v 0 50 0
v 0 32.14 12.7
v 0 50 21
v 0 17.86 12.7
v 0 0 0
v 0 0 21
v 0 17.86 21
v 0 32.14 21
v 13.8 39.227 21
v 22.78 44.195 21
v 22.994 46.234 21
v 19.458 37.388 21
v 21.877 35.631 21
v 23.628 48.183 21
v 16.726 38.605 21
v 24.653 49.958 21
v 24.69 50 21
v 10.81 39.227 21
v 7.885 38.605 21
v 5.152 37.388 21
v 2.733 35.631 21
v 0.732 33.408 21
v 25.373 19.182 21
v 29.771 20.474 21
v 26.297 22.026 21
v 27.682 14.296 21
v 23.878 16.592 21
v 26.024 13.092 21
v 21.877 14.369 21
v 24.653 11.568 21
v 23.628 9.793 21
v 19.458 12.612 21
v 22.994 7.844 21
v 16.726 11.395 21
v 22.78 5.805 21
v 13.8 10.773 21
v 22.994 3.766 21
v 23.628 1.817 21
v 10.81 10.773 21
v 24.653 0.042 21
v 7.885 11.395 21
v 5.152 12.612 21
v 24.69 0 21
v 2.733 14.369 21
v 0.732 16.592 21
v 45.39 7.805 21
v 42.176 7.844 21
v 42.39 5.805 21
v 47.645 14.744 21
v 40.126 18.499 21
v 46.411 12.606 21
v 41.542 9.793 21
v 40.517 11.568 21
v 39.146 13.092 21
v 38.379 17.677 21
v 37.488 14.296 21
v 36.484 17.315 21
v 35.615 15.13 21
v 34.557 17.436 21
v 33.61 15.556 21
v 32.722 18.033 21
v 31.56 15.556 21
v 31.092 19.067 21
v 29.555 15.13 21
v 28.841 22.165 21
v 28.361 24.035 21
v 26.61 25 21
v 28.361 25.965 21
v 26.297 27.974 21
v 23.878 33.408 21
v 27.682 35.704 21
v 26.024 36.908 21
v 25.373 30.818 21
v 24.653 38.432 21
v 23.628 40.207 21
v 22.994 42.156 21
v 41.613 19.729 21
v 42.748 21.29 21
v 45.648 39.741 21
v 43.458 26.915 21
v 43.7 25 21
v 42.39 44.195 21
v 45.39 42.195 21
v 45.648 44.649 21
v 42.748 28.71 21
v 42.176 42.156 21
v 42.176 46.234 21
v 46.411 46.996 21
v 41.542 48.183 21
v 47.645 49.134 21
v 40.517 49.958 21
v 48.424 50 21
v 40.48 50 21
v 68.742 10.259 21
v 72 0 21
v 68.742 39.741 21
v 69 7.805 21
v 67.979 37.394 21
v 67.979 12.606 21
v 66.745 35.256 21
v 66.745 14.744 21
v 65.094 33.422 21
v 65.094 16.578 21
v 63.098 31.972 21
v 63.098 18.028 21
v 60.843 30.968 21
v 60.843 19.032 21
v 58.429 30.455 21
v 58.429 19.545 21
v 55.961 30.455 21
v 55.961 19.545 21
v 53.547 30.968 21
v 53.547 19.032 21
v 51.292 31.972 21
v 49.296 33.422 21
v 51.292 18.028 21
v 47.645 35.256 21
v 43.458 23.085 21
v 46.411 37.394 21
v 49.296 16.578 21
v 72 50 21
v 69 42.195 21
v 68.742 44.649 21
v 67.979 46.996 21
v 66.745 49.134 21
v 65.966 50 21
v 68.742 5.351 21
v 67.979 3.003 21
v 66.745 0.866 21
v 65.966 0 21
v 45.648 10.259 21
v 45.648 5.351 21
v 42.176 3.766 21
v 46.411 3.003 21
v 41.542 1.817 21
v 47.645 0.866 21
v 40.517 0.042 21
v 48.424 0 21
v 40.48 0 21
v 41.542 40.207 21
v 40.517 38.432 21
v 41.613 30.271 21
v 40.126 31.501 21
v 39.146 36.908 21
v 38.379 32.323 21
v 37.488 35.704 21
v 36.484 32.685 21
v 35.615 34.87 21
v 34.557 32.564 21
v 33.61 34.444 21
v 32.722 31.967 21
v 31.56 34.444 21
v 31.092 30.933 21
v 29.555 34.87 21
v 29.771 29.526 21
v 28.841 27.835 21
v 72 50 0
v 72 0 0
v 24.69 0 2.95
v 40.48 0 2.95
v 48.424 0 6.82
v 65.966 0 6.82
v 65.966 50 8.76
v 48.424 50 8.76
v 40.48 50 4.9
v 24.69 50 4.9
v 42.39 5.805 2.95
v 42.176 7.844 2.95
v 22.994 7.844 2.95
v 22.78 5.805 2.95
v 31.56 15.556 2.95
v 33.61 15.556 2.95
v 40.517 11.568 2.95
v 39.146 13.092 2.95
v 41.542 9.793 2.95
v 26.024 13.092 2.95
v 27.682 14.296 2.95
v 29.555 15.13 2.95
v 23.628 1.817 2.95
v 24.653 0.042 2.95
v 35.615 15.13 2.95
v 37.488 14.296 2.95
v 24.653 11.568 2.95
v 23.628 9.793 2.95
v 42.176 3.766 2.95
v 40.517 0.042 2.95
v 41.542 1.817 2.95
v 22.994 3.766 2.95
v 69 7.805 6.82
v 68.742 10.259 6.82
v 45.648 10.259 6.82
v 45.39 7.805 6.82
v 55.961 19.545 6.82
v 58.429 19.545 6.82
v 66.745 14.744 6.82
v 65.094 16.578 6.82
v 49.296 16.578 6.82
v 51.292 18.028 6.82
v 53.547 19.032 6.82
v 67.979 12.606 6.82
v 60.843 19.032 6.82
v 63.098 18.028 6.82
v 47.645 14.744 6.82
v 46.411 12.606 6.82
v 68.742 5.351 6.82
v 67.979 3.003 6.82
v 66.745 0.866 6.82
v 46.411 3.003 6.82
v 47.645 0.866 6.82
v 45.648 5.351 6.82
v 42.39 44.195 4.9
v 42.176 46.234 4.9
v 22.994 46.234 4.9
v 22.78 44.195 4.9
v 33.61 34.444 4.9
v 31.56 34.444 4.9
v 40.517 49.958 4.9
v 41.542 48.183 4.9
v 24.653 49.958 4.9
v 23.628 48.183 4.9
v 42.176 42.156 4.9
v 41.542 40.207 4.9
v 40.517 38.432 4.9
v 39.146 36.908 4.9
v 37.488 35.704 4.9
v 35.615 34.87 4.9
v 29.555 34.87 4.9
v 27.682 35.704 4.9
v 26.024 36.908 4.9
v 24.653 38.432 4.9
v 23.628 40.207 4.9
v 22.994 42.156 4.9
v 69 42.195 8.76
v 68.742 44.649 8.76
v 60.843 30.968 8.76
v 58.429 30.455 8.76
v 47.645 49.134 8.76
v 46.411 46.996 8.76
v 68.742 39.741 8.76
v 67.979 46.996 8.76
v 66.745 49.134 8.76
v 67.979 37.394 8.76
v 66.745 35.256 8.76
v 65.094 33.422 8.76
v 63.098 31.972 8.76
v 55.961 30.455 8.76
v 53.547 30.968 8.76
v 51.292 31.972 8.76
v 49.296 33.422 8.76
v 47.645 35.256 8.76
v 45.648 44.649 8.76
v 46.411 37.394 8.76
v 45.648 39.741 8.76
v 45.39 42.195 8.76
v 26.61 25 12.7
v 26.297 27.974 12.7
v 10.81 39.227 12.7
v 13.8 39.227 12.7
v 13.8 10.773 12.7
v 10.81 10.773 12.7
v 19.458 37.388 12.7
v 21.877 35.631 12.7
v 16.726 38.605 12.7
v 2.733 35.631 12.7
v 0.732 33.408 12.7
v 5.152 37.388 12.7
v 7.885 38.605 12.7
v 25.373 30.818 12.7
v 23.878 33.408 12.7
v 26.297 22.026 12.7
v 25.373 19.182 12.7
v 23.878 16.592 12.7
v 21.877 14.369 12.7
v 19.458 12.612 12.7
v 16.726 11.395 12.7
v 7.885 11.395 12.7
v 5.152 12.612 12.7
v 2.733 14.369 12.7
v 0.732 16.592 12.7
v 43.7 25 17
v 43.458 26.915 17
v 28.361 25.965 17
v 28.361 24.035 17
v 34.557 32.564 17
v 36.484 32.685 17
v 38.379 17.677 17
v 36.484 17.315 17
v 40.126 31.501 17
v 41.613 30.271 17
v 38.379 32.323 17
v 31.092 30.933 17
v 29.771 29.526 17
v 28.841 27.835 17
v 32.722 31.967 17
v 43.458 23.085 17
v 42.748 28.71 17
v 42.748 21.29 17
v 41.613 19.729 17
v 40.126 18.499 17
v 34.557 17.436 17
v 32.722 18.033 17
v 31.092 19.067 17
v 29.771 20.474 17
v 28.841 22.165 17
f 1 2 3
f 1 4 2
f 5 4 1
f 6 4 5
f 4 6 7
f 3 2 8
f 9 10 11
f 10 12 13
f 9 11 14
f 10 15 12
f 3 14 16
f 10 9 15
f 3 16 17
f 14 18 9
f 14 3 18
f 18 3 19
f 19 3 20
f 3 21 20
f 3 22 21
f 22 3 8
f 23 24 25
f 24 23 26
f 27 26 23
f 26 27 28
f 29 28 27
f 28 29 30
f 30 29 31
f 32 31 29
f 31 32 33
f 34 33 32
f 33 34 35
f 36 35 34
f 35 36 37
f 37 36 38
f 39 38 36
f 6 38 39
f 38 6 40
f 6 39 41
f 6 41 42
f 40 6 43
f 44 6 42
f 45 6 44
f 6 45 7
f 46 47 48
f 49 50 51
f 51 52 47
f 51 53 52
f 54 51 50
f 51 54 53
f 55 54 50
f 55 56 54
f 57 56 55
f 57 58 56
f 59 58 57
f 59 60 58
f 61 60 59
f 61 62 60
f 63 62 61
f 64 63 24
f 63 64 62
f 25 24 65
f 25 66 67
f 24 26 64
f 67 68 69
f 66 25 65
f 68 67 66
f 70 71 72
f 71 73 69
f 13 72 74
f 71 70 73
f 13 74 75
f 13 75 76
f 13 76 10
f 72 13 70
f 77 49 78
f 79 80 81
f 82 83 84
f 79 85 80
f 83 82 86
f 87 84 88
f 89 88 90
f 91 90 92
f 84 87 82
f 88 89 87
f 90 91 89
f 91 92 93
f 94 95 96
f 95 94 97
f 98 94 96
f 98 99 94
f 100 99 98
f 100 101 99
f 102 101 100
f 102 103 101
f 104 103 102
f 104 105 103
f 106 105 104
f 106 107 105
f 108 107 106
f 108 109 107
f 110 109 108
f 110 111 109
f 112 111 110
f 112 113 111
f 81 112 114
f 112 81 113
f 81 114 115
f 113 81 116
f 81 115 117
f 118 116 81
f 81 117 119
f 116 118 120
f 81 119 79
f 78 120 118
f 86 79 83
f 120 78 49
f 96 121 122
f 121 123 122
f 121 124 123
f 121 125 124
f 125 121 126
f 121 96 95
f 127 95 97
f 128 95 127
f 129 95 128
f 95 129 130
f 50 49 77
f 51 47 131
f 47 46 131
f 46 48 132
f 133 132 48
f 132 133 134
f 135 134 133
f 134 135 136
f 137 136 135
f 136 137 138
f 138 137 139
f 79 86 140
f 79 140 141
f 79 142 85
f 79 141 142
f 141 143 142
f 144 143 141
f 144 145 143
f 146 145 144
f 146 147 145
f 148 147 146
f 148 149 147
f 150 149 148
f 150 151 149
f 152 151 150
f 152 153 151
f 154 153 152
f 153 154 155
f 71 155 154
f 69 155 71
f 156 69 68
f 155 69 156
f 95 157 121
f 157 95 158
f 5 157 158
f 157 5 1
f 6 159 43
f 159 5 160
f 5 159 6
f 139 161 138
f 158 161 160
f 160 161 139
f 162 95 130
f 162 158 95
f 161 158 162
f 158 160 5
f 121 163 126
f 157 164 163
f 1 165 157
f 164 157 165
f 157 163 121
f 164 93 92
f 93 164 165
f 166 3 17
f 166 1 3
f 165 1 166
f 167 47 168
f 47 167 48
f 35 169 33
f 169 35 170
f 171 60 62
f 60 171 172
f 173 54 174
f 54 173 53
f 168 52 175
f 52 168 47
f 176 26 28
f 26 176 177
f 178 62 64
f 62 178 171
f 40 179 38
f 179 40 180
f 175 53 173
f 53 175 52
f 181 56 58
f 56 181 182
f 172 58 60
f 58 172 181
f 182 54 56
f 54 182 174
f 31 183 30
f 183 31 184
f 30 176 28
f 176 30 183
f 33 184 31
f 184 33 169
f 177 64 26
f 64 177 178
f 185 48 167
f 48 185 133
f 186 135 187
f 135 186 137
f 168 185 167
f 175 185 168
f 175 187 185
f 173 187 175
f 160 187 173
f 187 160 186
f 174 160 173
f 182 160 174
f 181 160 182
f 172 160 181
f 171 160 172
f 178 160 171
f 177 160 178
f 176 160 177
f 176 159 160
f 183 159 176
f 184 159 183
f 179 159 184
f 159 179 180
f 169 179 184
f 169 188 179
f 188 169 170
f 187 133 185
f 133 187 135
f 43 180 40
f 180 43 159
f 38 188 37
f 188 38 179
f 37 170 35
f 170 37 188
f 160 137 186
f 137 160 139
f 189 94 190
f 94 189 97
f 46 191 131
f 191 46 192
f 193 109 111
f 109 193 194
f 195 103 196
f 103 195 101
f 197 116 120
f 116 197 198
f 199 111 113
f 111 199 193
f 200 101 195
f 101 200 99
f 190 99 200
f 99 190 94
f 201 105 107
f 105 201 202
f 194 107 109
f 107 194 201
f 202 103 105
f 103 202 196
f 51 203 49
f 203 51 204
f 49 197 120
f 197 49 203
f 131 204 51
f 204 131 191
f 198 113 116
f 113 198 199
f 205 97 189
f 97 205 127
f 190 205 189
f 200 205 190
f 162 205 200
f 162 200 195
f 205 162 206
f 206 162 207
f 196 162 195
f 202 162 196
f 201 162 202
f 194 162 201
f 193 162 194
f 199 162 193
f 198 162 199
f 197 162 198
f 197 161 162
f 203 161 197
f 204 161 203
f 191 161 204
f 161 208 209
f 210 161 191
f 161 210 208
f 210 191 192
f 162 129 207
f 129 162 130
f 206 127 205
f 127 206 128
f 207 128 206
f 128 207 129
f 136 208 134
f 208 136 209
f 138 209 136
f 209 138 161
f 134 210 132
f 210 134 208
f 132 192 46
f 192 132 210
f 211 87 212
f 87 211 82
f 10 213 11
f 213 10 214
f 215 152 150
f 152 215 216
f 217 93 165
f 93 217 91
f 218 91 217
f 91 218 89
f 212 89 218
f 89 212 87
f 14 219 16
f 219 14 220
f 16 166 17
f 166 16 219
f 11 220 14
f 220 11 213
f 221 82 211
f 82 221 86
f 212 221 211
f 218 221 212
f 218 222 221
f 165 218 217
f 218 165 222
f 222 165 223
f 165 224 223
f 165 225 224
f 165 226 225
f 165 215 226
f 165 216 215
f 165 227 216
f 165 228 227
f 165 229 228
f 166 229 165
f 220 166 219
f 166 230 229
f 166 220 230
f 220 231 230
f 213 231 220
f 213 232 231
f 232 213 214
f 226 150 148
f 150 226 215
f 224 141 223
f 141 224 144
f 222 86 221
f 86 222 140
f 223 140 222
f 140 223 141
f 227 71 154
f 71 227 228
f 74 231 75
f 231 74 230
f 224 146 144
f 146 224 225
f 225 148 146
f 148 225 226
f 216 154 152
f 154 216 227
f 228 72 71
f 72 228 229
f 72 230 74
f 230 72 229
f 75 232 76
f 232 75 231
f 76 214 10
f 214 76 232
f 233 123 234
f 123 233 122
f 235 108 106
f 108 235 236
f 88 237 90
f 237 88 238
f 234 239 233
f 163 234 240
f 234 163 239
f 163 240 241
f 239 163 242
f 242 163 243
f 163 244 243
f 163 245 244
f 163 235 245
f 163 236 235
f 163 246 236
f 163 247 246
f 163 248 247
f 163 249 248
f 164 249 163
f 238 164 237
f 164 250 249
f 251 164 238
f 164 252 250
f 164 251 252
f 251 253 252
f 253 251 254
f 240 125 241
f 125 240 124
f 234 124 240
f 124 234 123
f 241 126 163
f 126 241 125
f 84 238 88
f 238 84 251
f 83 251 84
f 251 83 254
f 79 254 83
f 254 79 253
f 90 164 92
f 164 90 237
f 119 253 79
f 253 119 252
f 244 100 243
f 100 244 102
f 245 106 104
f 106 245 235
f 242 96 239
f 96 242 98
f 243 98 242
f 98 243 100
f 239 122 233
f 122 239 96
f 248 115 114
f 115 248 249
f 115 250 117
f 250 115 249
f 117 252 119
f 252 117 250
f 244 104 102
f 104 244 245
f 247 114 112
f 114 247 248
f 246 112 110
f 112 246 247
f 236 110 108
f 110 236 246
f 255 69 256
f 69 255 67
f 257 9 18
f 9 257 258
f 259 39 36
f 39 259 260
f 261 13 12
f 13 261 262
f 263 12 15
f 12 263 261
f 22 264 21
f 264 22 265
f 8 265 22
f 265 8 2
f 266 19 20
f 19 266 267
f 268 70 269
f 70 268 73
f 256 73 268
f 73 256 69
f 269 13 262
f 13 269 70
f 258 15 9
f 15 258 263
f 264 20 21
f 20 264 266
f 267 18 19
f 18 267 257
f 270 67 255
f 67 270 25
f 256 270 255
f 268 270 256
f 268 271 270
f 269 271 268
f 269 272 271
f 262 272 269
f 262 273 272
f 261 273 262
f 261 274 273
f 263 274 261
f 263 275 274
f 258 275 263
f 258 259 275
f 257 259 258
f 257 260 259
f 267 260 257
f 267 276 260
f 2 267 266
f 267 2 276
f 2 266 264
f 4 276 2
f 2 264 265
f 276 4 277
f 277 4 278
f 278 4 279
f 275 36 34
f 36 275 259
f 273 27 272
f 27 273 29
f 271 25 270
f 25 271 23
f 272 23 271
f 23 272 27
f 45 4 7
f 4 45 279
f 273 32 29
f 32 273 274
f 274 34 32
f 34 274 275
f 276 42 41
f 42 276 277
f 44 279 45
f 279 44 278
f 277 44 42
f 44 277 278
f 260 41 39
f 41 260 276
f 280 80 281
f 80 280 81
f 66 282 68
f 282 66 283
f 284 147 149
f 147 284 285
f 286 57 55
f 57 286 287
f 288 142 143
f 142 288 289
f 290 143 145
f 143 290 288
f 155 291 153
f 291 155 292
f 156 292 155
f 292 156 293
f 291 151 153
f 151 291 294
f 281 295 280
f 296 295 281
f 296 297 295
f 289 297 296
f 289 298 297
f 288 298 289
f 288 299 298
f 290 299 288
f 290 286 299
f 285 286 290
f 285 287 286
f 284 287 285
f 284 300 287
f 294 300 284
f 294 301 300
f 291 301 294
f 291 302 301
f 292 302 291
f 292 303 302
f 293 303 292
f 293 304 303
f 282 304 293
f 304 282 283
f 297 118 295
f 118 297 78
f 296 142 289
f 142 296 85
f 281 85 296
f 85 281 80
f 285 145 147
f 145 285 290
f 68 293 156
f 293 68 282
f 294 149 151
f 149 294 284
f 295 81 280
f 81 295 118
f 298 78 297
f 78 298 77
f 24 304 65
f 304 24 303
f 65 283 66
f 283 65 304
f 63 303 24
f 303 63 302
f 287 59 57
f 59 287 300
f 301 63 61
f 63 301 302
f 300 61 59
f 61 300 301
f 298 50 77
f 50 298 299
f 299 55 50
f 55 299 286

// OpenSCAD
length = 72;
width = 50;
height = 21;

//Based on magnet size:
magnetBaseInnerDiameter = 15.4;
magnetHeight = 4.0;

//
//		1s
//			19.11 diameter
//			17 coins
//			height 33.15, or 17.55 and 15.6
//
//		2s
//			13 coins
//			23.11 diameter
//			height 25.45, or 13.68 and 11.74
//		4s
//			4 coins
//			28.11 diameter
//			7.8 height

smallCircleDiameter = 19.11 + .5;
smallCircleOffset = 4;
smallCircleHeight1 = 17.55 + .5;
smallCircleHeight2 = 15.6 + .5;

mediumCircleDiameter = 23.11 + .5;
mediumCircleOffset = 4;
mediumCircleHeight1 = 13.68 + .5;
mediumCircleHeight2 = 11.74 + .5;

largeCircleDiameter = 28.11 + .5;
largeCircleOffset = 5;
largeCircleHeight = 7.8 + .5;


spaceBetweenCircles = 3;

difference(){
    cube([length, width, height]);

    translate([length - (mediumCircleDiameter + spaceBetweenCircles * 2 + smallCircleDiameter/2), smallCircleDiameter/2 - smallCircleOffset, height - smallCircleHeight1])
        cylinder(smallCircleHeight1, d=smallCircleDiameter);


    
    
    
    translate([length - (mediumCircleDiameter/2 + spaceBetweenCircles), mediumCircleDiameter/2 - mediumCircleOffset, height - mediumCircleHeight1])
        cylinder(mediumCircleHeight1, d=mediumCircleDiameter);
    
    
    
    
    translate([length - (mediumCircleDiameter + spaceBetweenCircles * 2 + smallCircleDiameter/2), width - (smallCircleDiameter/2 - smallCircleOffset), height - smallCircleHeight2])
        cylinder(smallCircleHeight2, d=smallCircleDiameter);


    
    translate([length - (mediumCircleDiameter/2 + spaceBetweenCircles), width - (mediumCircleDiameter/2 - mediumCircleOffset), height - mediumCircleHeight2])
        cylinder(mediumCircleHeight2, d=mediumCircleDiameter);
    
    


    translate([largeCircleDiameter/2 + spaceBetweenCircles - largeCircleOffset, width/2, height - largeCircleHeight])
        cylinder(largeCircleHeight, d=largeCircleDiameter);


        
    translate([length/2, width/2, height - magnetHeight])
        cylinder(magnetHeight, d=magnetBaseInnerDiameter);
        

}
